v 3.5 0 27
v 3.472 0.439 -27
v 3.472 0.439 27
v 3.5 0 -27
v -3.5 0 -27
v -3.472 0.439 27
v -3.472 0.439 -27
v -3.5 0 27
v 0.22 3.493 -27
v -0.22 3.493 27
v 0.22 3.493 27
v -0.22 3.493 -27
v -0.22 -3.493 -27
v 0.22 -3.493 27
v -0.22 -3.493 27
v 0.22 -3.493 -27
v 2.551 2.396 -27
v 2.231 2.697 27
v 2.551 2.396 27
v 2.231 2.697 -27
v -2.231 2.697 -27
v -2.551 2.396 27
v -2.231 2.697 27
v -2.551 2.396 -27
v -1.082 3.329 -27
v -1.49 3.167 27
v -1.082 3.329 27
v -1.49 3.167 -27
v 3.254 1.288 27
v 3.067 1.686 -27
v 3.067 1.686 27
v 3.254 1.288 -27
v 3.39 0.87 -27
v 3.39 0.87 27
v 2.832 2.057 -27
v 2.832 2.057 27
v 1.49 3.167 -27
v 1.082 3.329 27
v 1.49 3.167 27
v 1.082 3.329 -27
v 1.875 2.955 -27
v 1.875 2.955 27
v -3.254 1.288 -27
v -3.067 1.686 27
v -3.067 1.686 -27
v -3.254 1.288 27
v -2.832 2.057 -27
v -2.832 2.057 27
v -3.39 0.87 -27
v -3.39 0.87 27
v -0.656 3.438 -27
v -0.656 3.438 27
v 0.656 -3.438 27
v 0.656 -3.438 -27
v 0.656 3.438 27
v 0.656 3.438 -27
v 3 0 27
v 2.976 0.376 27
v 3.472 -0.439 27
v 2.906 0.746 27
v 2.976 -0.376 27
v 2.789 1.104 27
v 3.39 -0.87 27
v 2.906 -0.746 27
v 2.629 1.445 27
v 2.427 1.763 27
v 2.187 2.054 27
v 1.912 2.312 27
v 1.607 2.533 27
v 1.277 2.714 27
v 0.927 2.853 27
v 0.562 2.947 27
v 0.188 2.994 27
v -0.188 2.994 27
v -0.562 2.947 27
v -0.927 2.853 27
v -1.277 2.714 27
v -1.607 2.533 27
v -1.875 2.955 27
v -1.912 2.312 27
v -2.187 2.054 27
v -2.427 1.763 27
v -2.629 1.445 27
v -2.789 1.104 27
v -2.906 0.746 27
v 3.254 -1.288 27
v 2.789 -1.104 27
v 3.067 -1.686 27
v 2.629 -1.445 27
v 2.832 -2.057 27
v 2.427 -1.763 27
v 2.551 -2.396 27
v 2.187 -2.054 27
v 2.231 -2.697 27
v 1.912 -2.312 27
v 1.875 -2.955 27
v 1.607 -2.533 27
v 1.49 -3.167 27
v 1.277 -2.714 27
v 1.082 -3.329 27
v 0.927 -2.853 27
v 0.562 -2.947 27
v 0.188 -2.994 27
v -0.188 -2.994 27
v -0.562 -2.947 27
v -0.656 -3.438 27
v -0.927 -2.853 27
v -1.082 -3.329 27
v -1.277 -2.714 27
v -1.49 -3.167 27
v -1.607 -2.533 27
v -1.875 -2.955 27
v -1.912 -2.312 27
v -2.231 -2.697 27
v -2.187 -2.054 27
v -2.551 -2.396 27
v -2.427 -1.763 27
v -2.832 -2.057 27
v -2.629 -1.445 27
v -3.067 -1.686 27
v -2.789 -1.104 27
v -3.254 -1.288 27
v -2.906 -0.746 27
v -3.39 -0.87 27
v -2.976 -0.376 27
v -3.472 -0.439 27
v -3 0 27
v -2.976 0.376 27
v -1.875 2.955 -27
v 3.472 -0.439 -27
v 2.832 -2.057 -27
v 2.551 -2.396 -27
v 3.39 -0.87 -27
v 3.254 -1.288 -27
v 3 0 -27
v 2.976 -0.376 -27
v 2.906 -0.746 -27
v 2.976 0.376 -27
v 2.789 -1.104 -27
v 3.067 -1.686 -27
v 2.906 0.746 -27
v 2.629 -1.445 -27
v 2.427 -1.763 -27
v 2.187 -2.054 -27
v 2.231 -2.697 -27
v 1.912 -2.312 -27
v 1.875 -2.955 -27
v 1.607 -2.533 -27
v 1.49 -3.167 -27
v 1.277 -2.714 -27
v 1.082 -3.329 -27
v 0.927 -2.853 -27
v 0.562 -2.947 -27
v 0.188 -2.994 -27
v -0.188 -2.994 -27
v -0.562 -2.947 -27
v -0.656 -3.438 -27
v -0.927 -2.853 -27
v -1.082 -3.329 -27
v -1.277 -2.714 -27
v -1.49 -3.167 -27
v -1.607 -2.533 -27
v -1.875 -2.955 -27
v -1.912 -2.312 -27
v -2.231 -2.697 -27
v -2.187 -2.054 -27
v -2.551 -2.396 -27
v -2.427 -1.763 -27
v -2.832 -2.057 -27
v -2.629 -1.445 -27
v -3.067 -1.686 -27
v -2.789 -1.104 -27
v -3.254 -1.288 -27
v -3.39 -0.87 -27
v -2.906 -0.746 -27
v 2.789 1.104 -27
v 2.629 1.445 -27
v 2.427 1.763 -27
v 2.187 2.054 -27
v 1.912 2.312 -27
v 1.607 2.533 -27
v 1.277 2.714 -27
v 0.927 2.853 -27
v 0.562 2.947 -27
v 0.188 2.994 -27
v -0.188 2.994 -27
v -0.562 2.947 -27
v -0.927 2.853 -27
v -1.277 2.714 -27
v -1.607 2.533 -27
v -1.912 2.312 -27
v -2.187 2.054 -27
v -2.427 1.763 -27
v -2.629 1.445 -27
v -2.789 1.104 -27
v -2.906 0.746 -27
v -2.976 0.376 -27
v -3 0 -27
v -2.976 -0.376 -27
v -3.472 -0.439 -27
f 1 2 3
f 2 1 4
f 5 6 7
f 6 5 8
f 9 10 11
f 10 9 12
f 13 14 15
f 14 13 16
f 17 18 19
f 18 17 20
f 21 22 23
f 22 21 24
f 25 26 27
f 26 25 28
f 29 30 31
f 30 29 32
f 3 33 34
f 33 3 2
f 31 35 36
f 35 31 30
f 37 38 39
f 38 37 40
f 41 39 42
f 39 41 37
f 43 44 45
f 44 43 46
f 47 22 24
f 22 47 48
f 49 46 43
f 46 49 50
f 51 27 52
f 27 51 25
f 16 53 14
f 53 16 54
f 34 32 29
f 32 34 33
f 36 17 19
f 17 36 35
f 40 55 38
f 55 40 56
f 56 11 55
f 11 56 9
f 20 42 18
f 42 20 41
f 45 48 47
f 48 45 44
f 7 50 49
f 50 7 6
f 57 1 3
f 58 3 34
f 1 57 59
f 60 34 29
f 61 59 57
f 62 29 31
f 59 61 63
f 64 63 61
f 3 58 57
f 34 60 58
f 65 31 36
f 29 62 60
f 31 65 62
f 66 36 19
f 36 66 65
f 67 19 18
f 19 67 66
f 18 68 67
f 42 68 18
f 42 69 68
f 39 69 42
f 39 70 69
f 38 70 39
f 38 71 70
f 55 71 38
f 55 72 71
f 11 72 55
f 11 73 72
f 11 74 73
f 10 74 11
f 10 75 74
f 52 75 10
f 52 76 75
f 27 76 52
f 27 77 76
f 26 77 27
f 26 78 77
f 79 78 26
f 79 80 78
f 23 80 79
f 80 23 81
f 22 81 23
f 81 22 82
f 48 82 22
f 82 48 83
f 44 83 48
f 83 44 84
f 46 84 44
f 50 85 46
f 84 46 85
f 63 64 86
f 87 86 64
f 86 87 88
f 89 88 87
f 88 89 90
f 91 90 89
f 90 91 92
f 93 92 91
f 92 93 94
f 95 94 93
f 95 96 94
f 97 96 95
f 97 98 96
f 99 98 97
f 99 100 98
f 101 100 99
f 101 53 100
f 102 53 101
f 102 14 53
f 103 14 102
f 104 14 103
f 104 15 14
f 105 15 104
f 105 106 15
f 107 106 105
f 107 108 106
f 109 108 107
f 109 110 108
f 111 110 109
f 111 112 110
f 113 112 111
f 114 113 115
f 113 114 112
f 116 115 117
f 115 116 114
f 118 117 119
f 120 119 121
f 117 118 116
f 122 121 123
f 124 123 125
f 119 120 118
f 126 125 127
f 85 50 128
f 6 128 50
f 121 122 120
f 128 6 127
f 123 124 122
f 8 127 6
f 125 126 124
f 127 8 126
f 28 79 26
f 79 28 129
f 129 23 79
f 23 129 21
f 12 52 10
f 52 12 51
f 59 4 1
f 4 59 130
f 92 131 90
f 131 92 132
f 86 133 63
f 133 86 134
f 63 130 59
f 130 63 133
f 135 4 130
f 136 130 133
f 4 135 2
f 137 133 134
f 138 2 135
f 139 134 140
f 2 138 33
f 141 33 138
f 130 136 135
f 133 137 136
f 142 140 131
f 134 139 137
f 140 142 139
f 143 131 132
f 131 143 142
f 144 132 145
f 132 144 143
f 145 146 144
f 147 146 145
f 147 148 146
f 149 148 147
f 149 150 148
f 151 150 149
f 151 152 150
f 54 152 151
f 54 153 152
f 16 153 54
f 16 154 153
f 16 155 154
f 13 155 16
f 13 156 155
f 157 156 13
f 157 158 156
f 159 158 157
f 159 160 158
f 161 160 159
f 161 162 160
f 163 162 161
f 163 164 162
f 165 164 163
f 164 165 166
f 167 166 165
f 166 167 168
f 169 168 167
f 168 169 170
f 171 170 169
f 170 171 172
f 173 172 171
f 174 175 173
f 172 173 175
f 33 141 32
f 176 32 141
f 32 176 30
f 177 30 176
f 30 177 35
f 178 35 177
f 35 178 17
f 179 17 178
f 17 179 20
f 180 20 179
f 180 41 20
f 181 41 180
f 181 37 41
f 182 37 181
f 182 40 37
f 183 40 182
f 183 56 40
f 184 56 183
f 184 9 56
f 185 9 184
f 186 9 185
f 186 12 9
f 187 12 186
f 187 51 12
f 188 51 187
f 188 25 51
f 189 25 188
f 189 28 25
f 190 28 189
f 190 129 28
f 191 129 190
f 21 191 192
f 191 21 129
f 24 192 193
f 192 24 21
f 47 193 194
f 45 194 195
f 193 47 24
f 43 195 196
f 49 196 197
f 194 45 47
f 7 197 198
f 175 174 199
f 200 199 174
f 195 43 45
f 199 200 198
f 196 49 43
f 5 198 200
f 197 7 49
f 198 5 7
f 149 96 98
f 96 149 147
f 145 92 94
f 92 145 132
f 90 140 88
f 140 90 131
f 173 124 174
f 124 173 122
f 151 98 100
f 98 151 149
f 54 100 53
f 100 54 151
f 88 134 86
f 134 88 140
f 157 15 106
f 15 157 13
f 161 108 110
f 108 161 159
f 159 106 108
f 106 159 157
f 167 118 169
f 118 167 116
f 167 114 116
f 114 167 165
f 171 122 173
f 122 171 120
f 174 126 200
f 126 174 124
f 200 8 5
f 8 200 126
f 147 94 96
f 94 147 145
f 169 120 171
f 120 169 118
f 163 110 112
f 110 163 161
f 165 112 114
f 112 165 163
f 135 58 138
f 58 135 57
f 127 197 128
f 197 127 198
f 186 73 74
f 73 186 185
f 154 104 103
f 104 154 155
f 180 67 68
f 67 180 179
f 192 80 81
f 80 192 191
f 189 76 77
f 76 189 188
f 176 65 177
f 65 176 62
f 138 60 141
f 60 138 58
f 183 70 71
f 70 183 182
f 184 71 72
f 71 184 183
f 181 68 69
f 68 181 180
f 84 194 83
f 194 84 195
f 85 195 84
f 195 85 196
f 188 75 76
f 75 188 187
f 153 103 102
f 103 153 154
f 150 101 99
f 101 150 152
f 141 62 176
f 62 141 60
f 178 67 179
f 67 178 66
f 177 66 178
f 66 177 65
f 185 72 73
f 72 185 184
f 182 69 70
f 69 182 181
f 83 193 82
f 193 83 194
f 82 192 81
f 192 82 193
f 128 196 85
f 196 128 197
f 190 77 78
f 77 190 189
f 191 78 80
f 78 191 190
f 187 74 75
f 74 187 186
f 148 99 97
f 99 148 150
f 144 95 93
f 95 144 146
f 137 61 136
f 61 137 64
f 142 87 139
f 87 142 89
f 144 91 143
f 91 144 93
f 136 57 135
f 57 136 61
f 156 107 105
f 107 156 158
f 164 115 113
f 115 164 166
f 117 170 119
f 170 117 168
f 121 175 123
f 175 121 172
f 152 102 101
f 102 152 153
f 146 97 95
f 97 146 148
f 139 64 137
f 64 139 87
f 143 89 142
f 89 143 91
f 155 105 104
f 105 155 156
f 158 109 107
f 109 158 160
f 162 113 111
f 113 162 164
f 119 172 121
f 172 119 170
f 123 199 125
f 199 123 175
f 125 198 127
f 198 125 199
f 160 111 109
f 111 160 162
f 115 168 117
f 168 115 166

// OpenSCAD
$fn = 50;


difference() {
	union() {
		translate(v = [0, 0, -27.0000000000]) {
			cylinder(h = 54, r = 3.5000000000);
		}
	}
	union() {
		translate(v = [0, 0, -100.0000000000]) {
			cylinder(h = 200, r = 3);
		}
	}
}
